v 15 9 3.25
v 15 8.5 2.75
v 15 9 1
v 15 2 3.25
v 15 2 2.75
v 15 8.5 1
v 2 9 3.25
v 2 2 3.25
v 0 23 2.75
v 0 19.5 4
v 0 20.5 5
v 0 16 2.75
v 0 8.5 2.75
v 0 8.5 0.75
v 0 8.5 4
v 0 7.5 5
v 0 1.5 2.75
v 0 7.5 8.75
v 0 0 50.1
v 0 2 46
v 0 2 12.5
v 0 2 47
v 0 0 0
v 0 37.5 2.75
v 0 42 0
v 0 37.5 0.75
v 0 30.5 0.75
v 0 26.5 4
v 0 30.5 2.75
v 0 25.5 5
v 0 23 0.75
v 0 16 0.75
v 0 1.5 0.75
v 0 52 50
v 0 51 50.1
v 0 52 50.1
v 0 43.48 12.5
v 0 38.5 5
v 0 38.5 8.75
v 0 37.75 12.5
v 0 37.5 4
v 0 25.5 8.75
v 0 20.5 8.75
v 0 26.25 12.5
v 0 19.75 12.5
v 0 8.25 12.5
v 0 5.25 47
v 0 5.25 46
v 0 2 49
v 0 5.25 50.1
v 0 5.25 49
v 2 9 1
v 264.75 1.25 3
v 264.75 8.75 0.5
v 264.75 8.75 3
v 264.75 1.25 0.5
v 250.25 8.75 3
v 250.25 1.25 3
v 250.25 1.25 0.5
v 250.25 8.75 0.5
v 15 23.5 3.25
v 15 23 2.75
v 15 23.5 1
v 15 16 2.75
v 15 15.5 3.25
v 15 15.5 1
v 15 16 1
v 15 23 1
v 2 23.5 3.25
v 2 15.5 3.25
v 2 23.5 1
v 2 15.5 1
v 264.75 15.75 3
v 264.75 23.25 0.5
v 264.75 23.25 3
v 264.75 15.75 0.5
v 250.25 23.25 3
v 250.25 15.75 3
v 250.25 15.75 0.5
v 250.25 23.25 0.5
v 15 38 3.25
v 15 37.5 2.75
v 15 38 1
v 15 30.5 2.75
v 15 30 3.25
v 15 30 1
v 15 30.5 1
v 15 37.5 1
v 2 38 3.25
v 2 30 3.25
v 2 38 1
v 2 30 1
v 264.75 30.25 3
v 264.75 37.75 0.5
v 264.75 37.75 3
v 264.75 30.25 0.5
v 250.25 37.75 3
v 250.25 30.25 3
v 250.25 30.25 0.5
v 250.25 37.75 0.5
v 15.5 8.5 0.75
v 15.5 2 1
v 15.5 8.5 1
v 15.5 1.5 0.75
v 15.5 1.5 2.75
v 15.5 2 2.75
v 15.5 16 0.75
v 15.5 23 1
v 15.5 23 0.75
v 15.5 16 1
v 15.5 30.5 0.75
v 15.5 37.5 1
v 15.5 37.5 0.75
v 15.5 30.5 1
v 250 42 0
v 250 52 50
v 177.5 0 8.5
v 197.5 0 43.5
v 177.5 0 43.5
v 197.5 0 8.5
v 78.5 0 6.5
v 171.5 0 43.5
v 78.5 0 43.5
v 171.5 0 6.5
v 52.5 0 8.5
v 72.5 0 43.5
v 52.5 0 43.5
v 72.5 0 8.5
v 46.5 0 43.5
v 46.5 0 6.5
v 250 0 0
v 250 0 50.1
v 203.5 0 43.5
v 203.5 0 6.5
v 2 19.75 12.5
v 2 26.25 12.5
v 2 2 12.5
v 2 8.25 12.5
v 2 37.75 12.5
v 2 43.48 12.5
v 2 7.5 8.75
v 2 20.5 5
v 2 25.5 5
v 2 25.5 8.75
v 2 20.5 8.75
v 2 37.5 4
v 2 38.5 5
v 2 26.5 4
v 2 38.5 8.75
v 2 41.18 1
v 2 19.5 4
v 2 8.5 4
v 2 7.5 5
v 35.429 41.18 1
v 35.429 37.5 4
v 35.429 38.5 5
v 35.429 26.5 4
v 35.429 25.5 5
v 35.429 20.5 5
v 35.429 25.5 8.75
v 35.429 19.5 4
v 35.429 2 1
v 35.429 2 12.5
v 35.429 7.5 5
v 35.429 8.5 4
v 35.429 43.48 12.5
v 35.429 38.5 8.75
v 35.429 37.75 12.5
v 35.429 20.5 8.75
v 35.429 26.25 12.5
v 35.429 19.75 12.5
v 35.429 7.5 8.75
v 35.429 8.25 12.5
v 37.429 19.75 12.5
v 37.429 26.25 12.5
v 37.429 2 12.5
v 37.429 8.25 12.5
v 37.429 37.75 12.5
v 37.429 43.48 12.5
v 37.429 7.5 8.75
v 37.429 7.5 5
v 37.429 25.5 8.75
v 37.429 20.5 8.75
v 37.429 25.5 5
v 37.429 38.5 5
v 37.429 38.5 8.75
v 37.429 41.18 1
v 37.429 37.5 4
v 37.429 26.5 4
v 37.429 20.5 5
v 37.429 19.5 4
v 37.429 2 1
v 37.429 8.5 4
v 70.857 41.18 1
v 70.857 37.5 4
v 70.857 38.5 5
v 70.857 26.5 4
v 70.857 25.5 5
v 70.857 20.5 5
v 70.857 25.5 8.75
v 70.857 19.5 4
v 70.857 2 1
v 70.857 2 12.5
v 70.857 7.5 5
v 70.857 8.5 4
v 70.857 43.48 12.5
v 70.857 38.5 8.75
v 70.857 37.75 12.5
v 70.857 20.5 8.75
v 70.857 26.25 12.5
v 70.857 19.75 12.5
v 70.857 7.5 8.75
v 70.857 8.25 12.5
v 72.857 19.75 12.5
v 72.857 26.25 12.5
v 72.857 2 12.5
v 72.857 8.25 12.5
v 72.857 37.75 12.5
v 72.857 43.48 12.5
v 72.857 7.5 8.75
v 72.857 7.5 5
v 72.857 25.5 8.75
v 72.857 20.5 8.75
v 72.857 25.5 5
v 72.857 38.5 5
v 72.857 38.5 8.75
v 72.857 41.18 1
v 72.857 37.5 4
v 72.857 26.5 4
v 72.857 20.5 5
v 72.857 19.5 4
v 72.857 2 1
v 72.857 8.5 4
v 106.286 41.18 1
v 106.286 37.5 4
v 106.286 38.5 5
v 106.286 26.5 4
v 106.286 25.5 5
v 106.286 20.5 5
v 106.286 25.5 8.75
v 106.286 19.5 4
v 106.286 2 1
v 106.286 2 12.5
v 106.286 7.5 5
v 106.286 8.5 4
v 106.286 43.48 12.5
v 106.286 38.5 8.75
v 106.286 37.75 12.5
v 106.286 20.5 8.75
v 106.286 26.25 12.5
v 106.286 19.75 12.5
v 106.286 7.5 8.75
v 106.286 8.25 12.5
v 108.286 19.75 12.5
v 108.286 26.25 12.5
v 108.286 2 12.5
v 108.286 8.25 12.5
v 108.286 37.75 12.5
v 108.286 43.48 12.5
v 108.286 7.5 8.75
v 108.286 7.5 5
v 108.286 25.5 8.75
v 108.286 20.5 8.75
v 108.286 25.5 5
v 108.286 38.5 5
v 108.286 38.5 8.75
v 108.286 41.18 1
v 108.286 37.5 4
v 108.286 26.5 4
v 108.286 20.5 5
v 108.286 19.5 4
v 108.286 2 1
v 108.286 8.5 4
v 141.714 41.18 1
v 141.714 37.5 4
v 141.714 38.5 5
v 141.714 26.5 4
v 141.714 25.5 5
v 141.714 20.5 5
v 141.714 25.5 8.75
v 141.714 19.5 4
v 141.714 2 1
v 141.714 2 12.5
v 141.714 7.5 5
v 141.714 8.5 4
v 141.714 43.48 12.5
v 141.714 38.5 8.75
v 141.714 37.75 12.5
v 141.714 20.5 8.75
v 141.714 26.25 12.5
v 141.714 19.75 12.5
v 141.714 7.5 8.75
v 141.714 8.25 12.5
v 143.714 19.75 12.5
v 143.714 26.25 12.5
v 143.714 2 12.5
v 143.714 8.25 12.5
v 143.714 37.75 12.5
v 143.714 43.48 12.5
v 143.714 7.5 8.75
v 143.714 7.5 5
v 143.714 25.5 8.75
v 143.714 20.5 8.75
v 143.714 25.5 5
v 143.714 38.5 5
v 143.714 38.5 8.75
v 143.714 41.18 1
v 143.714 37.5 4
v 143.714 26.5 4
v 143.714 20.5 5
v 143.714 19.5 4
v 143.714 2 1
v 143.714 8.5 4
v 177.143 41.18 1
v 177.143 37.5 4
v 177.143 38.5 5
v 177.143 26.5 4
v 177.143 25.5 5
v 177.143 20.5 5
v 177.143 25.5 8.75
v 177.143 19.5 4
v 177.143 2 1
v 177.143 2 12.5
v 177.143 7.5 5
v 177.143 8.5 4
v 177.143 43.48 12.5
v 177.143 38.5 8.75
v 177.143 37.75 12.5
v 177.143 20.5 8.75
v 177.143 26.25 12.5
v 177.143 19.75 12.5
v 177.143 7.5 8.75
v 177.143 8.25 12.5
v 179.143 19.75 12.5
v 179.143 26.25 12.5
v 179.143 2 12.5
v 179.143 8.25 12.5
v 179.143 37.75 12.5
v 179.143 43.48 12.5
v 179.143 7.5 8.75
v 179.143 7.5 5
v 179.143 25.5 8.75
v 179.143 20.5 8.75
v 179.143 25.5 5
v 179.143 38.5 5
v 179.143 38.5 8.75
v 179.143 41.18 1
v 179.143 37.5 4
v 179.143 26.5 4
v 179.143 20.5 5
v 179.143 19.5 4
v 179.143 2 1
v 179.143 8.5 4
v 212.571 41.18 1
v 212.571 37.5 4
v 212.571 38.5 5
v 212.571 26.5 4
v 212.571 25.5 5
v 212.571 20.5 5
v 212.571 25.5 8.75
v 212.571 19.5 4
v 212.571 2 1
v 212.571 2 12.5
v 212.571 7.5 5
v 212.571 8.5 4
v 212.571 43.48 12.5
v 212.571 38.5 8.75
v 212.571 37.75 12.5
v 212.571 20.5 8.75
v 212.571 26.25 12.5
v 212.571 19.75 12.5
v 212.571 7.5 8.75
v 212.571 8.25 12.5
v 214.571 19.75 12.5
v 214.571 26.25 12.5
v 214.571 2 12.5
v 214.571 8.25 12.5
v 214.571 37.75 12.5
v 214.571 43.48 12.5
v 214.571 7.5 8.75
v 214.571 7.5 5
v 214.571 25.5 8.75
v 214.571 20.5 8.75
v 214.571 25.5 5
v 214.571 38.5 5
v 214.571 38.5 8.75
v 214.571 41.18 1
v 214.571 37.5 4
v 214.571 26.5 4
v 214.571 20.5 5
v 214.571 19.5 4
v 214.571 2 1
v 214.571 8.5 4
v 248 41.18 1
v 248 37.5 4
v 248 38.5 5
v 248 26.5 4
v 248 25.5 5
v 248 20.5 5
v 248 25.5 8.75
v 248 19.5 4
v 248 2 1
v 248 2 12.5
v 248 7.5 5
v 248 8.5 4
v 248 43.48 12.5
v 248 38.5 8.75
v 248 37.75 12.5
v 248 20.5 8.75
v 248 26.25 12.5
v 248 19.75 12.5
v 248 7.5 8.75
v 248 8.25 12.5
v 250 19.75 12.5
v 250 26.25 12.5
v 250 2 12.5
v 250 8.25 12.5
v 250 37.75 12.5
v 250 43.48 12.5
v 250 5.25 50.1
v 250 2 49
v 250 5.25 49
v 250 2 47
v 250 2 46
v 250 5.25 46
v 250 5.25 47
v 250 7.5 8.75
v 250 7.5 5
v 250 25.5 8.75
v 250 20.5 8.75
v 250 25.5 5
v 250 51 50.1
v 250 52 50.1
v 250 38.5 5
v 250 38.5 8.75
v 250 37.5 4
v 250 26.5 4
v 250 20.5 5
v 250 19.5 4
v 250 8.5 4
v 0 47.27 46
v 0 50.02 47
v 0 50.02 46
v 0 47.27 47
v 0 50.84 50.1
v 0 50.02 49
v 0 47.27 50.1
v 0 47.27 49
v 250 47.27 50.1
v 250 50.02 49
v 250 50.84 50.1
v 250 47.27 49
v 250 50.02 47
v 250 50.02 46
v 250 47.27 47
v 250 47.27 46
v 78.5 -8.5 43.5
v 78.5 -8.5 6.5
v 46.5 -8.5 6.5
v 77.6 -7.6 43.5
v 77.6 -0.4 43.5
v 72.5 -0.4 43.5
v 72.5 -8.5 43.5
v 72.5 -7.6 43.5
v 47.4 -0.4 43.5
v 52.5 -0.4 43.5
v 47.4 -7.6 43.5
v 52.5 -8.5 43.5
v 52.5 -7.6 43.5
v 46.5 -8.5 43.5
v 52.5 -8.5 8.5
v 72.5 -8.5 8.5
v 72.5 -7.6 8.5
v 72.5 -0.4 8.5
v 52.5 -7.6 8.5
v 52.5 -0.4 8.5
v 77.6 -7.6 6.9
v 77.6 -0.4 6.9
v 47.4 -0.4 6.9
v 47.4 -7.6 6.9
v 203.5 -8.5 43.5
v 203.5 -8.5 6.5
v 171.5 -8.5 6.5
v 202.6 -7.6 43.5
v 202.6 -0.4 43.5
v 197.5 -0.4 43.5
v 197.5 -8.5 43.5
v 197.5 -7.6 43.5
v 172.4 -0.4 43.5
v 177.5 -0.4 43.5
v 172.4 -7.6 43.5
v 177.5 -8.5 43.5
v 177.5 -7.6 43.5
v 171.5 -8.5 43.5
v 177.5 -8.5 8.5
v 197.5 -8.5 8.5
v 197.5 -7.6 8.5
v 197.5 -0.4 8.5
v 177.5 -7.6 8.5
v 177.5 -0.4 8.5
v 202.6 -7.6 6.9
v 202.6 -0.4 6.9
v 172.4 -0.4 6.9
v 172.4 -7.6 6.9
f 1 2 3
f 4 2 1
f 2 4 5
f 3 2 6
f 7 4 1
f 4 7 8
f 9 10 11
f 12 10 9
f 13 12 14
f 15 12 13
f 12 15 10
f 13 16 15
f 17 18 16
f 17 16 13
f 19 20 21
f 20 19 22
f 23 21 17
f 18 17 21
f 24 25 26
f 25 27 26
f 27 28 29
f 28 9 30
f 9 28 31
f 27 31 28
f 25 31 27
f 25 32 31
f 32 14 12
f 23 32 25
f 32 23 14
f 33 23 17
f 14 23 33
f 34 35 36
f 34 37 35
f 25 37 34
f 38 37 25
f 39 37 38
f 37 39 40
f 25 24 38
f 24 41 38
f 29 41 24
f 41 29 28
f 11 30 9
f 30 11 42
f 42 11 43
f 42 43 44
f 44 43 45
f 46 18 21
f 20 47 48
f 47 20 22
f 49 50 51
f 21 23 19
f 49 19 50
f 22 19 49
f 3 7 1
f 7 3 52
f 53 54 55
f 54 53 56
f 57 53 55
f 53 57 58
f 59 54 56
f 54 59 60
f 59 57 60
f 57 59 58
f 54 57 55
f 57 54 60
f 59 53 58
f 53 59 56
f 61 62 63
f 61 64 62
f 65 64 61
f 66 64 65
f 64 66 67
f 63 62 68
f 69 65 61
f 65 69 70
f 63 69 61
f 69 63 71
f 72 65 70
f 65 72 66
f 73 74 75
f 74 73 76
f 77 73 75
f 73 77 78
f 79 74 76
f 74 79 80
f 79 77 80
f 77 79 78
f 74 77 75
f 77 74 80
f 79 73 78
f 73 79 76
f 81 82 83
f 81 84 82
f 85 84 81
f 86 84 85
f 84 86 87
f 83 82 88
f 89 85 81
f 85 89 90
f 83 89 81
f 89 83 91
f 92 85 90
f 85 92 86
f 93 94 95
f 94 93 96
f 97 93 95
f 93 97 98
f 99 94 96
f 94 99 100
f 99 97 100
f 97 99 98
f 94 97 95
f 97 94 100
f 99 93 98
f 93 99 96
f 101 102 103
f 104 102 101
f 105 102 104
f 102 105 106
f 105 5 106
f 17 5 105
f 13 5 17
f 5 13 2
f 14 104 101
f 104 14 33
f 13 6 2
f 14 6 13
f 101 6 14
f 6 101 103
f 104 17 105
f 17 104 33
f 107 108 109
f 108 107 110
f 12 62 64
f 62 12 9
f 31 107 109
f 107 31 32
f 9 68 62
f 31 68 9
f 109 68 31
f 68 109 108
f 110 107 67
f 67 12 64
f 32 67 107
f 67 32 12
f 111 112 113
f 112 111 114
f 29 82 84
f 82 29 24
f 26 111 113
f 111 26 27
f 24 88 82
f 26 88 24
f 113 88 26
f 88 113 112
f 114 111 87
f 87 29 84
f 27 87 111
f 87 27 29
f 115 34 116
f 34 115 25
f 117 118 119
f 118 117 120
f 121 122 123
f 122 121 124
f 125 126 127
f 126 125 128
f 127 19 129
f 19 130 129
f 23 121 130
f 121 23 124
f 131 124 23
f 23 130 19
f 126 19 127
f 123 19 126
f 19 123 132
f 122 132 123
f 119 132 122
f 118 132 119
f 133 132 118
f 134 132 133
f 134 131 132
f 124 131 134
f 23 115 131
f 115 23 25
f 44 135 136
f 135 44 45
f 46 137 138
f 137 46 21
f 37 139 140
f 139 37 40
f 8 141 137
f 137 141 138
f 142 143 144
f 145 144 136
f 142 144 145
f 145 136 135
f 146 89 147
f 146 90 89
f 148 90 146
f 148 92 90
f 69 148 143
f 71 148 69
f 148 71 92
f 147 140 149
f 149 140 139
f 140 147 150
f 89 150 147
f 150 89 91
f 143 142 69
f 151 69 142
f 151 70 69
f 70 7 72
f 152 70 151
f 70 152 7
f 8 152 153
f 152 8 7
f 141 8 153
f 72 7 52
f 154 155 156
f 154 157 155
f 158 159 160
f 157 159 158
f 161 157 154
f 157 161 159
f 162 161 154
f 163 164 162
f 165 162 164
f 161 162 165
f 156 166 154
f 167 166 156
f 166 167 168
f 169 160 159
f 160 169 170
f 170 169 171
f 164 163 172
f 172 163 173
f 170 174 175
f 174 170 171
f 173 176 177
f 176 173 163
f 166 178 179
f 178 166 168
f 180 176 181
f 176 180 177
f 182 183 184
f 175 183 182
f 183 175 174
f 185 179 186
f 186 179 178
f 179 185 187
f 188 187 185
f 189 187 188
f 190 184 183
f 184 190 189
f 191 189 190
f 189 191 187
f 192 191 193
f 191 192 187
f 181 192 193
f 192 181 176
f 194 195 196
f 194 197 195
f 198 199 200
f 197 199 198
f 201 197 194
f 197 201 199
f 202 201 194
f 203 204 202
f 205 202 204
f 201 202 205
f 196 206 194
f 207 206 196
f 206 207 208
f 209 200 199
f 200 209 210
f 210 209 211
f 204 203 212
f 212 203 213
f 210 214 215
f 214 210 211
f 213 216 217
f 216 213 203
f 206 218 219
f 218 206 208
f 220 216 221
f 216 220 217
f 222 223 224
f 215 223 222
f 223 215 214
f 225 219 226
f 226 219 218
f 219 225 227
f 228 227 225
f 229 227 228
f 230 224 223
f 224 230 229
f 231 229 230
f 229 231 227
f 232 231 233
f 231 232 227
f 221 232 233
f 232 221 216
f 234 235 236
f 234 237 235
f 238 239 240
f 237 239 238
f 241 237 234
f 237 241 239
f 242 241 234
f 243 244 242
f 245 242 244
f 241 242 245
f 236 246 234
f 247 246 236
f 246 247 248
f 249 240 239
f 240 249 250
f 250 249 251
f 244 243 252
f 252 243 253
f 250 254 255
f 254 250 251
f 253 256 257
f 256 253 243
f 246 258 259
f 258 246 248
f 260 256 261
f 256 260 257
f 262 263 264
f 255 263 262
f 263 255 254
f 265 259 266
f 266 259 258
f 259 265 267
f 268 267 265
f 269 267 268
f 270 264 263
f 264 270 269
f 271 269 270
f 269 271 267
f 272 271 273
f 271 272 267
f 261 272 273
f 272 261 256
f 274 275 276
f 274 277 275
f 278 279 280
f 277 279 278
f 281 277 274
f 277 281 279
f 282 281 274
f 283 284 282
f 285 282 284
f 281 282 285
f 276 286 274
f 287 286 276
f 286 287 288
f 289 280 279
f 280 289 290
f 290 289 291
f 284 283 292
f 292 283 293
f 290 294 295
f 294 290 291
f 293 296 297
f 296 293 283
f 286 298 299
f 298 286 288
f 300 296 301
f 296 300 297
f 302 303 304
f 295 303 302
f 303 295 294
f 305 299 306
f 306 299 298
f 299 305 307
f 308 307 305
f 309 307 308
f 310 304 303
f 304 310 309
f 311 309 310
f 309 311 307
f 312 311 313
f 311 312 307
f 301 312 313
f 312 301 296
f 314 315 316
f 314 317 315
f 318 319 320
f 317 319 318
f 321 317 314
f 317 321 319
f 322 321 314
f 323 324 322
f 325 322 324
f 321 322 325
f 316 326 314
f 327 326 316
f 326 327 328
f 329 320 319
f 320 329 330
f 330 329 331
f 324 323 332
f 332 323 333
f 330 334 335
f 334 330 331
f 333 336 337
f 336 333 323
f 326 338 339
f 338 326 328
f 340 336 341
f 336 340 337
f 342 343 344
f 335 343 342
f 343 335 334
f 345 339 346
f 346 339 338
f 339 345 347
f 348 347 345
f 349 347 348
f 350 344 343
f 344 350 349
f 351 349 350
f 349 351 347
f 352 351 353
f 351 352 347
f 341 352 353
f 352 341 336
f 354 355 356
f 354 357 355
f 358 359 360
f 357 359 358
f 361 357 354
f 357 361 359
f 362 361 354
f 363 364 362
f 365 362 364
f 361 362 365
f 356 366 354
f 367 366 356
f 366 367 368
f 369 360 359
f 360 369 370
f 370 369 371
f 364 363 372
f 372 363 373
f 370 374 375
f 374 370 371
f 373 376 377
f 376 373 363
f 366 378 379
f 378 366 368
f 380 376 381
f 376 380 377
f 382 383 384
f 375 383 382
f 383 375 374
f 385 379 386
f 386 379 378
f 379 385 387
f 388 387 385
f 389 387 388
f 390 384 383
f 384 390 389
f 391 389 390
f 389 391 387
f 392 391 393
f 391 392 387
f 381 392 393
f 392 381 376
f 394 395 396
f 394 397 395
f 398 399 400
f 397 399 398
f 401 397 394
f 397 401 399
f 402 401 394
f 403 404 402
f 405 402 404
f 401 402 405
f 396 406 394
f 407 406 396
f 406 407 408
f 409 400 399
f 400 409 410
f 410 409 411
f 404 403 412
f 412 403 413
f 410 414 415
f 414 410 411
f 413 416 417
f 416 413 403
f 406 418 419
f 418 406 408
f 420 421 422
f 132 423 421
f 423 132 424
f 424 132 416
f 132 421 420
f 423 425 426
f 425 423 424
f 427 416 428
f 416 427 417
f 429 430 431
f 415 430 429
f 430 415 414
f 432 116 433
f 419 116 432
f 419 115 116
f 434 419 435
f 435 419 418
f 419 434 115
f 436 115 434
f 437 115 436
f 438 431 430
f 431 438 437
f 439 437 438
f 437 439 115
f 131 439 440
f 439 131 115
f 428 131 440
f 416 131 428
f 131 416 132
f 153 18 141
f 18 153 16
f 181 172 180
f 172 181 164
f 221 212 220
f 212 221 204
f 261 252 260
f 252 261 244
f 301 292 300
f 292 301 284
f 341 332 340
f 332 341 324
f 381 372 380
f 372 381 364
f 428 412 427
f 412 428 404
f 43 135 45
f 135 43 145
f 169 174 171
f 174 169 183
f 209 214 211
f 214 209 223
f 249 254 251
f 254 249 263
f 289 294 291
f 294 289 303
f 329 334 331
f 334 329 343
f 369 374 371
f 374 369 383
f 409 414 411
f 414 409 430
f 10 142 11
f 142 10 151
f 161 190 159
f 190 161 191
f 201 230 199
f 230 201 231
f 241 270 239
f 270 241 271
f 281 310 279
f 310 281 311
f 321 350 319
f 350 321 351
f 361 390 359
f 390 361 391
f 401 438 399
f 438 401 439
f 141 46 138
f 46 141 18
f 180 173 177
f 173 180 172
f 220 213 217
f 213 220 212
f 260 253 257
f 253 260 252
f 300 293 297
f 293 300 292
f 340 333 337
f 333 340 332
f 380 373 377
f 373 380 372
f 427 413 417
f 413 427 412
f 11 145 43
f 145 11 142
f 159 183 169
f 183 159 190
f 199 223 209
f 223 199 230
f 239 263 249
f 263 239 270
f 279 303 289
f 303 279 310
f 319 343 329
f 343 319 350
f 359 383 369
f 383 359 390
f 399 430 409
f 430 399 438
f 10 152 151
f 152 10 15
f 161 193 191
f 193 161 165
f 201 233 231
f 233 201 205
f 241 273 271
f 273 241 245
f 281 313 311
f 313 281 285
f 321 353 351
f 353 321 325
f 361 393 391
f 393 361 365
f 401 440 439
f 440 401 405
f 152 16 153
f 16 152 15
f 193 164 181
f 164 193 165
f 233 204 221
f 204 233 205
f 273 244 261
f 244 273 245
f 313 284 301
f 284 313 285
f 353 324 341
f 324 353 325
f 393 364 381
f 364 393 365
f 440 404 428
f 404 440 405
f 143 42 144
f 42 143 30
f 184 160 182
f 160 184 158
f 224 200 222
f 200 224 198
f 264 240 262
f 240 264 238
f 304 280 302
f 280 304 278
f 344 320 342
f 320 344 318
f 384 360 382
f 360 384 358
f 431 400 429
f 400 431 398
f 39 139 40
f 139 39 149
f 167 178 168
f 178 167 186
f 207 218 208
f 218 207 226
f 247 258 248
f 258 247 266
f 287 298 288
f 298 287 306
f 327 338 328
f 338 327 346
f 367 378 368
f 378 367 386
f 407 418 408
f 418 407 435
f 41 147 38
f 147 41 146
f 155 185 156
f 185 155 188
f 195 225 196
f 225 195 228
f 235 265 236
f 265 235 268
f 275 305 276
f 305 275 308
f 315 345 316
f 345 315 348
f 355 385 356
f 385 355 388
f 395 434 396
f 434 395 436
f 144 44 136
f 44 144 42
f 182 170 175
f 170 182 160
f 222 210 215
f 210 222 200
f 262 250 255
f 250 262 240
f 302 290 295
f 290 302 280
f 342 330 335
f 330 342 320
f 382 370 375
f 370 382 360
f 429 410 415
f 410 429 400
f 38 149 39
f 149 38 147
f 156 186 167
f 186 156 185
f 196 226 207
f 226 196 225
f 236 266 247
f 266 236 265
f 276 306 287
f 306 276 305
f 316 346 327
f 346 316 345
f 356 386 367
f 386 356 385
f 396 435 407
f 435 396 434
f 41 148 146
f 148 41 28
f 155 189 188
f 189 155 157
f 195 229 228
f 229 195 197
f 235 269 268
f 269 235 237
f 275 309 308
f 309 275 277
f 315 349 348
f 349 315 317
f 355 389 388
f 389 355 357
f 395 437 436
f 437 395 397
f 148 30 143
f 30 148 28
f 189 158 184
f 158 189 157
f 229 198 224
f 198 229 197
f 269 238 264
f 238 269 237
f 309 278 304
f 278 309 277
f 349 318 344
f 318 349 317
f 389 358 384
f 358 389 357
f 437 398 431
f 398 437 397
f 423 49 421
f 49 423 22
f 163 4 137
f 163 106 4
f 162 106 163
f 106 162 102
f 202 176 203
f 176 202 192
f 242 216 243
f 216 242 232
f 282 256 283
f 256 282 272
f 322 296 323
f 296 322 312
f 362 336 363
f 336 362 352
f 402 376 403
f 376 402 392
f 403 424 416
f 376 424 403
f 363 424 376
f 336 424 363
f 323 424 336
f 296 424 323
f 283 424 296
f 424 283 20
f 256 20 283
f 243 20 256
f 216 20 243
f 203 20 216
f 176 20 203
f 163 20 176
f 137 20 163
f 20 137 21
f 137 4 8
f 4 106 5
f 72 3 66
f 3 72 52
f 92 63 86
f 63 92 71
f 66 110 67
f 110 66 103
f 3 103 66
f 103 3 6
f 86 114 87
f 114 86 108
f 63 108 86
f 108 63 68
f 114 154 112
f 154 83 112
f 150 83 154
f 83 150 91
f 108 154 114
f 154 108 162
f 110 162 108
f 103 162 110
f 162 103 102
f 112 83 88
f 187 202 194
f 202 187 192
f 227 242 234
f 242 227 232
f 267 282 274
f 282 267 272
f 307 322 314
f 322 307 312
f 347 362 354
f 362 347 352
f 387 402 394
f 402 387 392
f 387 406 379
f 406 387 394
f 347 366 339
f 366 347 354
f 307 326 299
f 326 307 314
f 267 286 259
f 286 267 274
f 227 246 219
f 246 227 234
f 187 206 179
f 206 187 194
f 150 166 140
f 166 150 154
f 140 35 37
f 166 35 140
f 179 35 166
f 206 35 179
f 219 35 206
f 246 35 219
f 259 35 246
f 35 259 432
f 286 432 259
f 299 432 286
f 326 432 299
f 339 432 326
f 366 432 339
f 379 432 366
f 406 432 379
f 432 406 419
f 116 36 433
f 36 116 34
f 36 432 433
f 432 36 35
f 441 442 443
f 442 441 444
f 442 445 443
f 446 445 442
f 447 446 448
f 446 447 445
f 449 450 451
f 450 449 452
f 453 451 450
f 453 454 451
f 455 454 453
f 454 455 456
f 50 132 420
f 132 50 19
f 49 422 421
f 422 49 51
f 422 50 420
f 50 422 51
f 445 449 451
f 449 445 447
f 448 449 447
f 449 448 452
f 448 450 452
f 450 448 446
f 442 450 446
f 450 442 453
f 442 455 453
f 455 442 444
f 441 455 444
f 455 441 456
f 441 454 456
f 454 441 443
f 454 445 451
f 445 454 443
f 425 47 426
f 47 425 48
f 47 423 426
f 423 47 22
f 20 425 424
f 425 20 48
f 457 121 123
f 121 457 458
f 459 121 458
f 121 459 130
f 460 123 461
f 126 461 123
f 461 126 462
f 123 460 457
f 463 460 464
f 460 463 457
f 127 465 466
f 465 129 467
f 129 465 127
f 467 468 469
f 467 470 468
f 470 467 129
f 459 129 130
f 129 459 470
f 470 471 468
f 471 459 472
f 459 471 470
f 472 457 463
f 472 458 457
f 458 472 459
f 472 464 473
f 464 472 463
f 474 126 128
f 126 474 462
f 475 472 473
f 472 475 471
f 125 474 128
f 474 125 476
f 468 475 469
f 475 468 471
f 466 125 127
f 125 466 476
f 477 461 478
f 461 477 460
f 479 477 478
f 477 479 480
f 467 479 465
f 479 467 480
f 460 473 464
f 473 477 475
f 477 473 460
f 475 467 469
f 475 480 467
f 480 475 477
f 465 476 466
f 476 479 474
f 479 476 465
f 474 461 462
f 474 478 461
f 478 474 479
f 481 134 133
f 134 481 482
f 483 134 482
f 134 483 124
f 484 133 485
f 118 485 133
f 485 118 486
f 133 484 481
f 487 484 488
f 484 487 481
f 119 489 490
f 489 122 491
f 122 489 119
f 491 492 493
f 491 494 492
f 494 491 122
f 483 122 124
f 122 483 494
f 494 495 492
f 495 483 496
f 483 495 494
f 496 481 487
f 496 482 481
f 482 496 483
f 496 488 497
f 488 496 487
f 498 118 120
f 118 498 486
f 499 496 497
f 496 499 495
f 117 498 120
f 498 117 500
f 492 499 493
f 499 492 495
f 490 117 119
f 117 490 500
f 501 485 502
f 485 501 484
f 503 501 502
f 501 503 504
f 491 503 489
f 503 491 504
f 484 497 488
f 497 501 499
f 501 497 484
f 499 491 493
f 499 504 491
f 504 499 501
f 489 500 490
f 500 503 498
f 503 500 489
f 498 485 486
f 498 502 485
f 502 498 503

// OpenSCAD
include<global.scad>
use <./pegmixer.scad>
// use <./pegplate.scad>

PEG_PLATE_W = 30;
PEG_PLATE_H = 35;
PEG_PLATE_THICKNESS = 7;

dioder_end_w_b = 11; //mm
dioder_end_w_t = 9.5; //mm
dioder_end_h = 7.5; //mm

//global variables
STRIP_LENGTH = 250;
CHAINED_STRIPS_COUNT = 1; //number of strips in series, plugged into eacher (effects the length)
PARALLEL_STRIPS_COUNT = 2; //depth of one bracket is 18
BRACKET_PADDING = 7; //From the edge of the light to the edge of the LED bracket
LED_PADDING = 7; //Distance between each LED along the strip
LIGHTBAR_DEPTH = ((LED_PADDING * 2 ) * PARALLEL_STRIPS_COUNT) + (BRACKET_PADDING * 2); //From the wall
LIGHTBAR_HEIGHT = 50; //Height of the lightbar
WALL_THICKNESS = 1;
RIB_THICKNESS = 2;
LIGHTBAR_LENGTH = STRIP_LENGTH * CHAINED_STRIPS_COUNT;
RIB_HEIGHT = dioder_end_h + 5;
RIB_COUNT = 8;

MAX_PRINTER_WIDTH = 300; // for k1se
CLIP_OVERRIDE = true;
CLIPS_ENABLED = LIGHTBAR_LENGTH >= MAX_PRINTER_WIDTH || CLIP_OVERRIDE ? true : false;

DIFFUSER_THICKNESS = 1.5;
DIFFUSER_CLEARANCE = 0.5;   // looseness
DIFFUSER_LIP       = 1.0;   // retention lip
DIFFUSER_SLOT      = DIFFUSER_THICKNESS + DIFFUSER_CLEARANCE;
CHANNEL_DEPTH      = 5;
CHANNEL_HEIGHT     = DIFFUSER_LIP * 2 + DIFFUSER_SLOT +0.1;

front_face_sheer = 10;
slope_angle = atan(front_face_sheer / LIGHTBAR_HEIGHT); // in degrees
top_sheer = RIB_HEIGHT * tan(slope_angle);
diffuser_channel_sheer = CHANNEL_HEIGHT * tan(slope_angle);
front_face_run = tan(slope_angle) * LIGHTBAR_HEIGHT - 5;

// offset 
module dioder_led(
    wt = dioder_end_w_t,
    wb = dioder_end_w_b,
    h = dioder_end_h
) 
{
    xrot(90)
    linear_extrude(STRIP_LENGTH + 2)
    hull() {
        offset([0, 0, 0]) {
            translate([-wt/2, h/2]) square([wt, h/2]);
            translate([-wb/2, 0]) square([wb, h/2]);
        }
    }
}

// full rail
module diffuser_channel(angled_edge) {
    full_depth = LIGHTBAR_DEPTH + front_face_run + WALL_THICKNESS * 2.3 + 0.72;
    diffuser_surface_area = full_depth - CHANNEL_DEPTH -3;

    xrot(90) yrot(90) translate([0,LIGHTBAR_HEIGHT - (DIFFUSER_LIP *2 + DIFFUSER_SLOT) ,0])
    linear_extrude(LIGHTBAR_LENGTH)
        difference(center=true) {
            polygon(points=[
                [0, 0],
                [full_depth, 0],
                [full_depth + diffuser_channel_sheer, CHANNEL_HEIGHT],
                [0, CHANNEL_HEIGHT]
            ]);
            translate([0,DIFFUSER_LIP]) square([full_depth, DIFFUSER_SLOT]);
            translate([CHANNEL_DEPTH / 2 + 2.75, 0]) square([diffuser_surface_area, CHANNEL_HEIGHT]);
        }
}


module rib(x_pos) {
    shear = front_face_sheer;      
    rib_h = RIB_HEIGHT;           
    rib_t = RIB_THICKNESS;         
    depth = LIGHTBAR_DEPTH;
    translate([x_pos, 0, 0])
    zrot(90) xrot(90)
        linear_extrude(height = rib_t)
            polygon(points=[
                [0, 0],             // back bottom
                [depth, 0],         // front bottom
                [depth + top_sheer, rib_h], // front top (sheared)
                [0, rib_h]          // back top
            ]);
}


module ribs() {
    usable_length = LIGHTBAR_LENGTH - WALL_THICKNESS * 2;
    rib_spacing = usable_length / (RIB_COUNT - 1);

    for (i = [0 : RIB_COUNT - 1]) {
        x =
            WALL_THICKNESS
          + i * rib_spacing
          - RIB_THICKNESS / 2;

        rib(x);
    }
}

module brackets() {
    module map_strips(parallel, chain) {
        translate([0,BRACKET_PADDING / 2,0]){
            repeat_axis(parallel, LED_PADDING + dioder_end_w_b, [0,1,0]) { 
                repeat_axis(chain, STRIP_LENGTH + 1, [1,0,0]) { 
                    zrot(90) 
                    translate([dioder_end_w_b/2+LED_PADDING -2,1, RIB_HEIGHT- dioder_end_h]) 
                    dioder_led(); 
                }   
            }
        }
    }

    difference(){
        ribs();
        map_strips(PARALLEL_STRIPS_COUNT, CHAINED_STRIPS_COUNT);
    }
}

module lightbar_frame() {

    module body(){
        cube([LIGHTBAR_LENGTH, WALL_THICKNESS * 2, LIGHTBAR_HEIGHT]);
        cube([LIGHTBAR_LENGTH, LIGHTBAR_DEPTH, WALL_THICKNESS ]);
        translate([0,LIGHTBAR_DEPTH - WALL_THICKNESS,0]) {
            hull() {
                translate([0,+10,LIGHTBAR_HEIGHT]) cube([STRIP_LENGTH * CHAINED_STRIPS_COUNT, WALL_THICKNESS, 0.1]);
                cube([STRIP_LENGTH * CHAINED_STRIPS_COUNT, WALL_THICKNESS, 0.1]);
            }
        }
        brackets();
        diffuser_channel();
    }

    if (CLIPS_ENABLED) {
        difference() {
            union() {
                body();
                clip_solids();
            }
                clip_voids();
        }
    } else body();
}

clip_clearance = 0.5;
clipwall = 1;
clipdepth = 15;

module clip_solids() {
    repeat_axis(PARALLEL_STRIPS_COUNT + 1, LIGHTBAR_DEPTH/ 3 + 0.5, [0,1,0])
    translate([clipdepth/2,5,1.75]) {
        cube(center=true,[clipdepth, 8, 3]);
        translate([LIGHTBAR_LENGTH,0,0]) {
            cube(center=true,[clipdepth - clipwall + clip_clearance, 8 -clipwall + clip_clearance, 3 - clipwall + clip_clearance]);
        }
    }
}


module clip_voids() {
    repeat_axis(PARALLEL_STRIPS_COUNT + 1, LIGHTBAR_DEPTH/ 3 + 0.5, [0,1,0])
    translate([clipdepth/2,5,1.75])
    cube(center=true,[clipdepth + clipwall, 8-clipwall, 3-clipwall]);
}

module peg_plate() {
    pegboard_thickness = 3;
    translate([0,0,PEG_PLATE_H / 2 - 3])
    pegmixer(hole_d = 3, board_thickness = pegboard_thickness, alignment_peg_length=0, arc_d_mul=4) virtual([]);
    cube([PEG_PLATE_W - 1, PEG_PLATE_THICKNESS - 2, PEG_PLATE_H ], center=true);
}

module peg_slot() {
    clearance = 0.2;
    difference(){
        difference(){
            cube([PEG_PLATE_W + 2, PEG_PLATE_THICKNESS + 2, PEG_PLATE_H + 2 ], center=true);
            translate([0,0,-2]) cube([PEG_PLATE_W - 10, PEG_PLATE_THICKNESS +5, PEG_PLATE_H +2 ], center=true);
        }
        translate([0,0,-0.5]) cube([PEG_PLATE_W + clearance, PEG_PLATE_THICKNESS + clearance, PEG_PLATE_H + clearance + 2 ], center=true);
    }
}

// peg_plate();

union() {
    lightbar_frame();
    for (i=[0:CHAINED_STRIPS_COUNT]) {
        repeat_axis(2, (LIGHTBAR_LENGTH / 2) * i, [1,0,0]) {
            translate([STRIP_LENGTH / 4, -PEG_PLATE_THICKNESS +3, LIGHTBAR_HEIGHT / 2])
            xrot(180) peg_slot();
        }
    }
}
